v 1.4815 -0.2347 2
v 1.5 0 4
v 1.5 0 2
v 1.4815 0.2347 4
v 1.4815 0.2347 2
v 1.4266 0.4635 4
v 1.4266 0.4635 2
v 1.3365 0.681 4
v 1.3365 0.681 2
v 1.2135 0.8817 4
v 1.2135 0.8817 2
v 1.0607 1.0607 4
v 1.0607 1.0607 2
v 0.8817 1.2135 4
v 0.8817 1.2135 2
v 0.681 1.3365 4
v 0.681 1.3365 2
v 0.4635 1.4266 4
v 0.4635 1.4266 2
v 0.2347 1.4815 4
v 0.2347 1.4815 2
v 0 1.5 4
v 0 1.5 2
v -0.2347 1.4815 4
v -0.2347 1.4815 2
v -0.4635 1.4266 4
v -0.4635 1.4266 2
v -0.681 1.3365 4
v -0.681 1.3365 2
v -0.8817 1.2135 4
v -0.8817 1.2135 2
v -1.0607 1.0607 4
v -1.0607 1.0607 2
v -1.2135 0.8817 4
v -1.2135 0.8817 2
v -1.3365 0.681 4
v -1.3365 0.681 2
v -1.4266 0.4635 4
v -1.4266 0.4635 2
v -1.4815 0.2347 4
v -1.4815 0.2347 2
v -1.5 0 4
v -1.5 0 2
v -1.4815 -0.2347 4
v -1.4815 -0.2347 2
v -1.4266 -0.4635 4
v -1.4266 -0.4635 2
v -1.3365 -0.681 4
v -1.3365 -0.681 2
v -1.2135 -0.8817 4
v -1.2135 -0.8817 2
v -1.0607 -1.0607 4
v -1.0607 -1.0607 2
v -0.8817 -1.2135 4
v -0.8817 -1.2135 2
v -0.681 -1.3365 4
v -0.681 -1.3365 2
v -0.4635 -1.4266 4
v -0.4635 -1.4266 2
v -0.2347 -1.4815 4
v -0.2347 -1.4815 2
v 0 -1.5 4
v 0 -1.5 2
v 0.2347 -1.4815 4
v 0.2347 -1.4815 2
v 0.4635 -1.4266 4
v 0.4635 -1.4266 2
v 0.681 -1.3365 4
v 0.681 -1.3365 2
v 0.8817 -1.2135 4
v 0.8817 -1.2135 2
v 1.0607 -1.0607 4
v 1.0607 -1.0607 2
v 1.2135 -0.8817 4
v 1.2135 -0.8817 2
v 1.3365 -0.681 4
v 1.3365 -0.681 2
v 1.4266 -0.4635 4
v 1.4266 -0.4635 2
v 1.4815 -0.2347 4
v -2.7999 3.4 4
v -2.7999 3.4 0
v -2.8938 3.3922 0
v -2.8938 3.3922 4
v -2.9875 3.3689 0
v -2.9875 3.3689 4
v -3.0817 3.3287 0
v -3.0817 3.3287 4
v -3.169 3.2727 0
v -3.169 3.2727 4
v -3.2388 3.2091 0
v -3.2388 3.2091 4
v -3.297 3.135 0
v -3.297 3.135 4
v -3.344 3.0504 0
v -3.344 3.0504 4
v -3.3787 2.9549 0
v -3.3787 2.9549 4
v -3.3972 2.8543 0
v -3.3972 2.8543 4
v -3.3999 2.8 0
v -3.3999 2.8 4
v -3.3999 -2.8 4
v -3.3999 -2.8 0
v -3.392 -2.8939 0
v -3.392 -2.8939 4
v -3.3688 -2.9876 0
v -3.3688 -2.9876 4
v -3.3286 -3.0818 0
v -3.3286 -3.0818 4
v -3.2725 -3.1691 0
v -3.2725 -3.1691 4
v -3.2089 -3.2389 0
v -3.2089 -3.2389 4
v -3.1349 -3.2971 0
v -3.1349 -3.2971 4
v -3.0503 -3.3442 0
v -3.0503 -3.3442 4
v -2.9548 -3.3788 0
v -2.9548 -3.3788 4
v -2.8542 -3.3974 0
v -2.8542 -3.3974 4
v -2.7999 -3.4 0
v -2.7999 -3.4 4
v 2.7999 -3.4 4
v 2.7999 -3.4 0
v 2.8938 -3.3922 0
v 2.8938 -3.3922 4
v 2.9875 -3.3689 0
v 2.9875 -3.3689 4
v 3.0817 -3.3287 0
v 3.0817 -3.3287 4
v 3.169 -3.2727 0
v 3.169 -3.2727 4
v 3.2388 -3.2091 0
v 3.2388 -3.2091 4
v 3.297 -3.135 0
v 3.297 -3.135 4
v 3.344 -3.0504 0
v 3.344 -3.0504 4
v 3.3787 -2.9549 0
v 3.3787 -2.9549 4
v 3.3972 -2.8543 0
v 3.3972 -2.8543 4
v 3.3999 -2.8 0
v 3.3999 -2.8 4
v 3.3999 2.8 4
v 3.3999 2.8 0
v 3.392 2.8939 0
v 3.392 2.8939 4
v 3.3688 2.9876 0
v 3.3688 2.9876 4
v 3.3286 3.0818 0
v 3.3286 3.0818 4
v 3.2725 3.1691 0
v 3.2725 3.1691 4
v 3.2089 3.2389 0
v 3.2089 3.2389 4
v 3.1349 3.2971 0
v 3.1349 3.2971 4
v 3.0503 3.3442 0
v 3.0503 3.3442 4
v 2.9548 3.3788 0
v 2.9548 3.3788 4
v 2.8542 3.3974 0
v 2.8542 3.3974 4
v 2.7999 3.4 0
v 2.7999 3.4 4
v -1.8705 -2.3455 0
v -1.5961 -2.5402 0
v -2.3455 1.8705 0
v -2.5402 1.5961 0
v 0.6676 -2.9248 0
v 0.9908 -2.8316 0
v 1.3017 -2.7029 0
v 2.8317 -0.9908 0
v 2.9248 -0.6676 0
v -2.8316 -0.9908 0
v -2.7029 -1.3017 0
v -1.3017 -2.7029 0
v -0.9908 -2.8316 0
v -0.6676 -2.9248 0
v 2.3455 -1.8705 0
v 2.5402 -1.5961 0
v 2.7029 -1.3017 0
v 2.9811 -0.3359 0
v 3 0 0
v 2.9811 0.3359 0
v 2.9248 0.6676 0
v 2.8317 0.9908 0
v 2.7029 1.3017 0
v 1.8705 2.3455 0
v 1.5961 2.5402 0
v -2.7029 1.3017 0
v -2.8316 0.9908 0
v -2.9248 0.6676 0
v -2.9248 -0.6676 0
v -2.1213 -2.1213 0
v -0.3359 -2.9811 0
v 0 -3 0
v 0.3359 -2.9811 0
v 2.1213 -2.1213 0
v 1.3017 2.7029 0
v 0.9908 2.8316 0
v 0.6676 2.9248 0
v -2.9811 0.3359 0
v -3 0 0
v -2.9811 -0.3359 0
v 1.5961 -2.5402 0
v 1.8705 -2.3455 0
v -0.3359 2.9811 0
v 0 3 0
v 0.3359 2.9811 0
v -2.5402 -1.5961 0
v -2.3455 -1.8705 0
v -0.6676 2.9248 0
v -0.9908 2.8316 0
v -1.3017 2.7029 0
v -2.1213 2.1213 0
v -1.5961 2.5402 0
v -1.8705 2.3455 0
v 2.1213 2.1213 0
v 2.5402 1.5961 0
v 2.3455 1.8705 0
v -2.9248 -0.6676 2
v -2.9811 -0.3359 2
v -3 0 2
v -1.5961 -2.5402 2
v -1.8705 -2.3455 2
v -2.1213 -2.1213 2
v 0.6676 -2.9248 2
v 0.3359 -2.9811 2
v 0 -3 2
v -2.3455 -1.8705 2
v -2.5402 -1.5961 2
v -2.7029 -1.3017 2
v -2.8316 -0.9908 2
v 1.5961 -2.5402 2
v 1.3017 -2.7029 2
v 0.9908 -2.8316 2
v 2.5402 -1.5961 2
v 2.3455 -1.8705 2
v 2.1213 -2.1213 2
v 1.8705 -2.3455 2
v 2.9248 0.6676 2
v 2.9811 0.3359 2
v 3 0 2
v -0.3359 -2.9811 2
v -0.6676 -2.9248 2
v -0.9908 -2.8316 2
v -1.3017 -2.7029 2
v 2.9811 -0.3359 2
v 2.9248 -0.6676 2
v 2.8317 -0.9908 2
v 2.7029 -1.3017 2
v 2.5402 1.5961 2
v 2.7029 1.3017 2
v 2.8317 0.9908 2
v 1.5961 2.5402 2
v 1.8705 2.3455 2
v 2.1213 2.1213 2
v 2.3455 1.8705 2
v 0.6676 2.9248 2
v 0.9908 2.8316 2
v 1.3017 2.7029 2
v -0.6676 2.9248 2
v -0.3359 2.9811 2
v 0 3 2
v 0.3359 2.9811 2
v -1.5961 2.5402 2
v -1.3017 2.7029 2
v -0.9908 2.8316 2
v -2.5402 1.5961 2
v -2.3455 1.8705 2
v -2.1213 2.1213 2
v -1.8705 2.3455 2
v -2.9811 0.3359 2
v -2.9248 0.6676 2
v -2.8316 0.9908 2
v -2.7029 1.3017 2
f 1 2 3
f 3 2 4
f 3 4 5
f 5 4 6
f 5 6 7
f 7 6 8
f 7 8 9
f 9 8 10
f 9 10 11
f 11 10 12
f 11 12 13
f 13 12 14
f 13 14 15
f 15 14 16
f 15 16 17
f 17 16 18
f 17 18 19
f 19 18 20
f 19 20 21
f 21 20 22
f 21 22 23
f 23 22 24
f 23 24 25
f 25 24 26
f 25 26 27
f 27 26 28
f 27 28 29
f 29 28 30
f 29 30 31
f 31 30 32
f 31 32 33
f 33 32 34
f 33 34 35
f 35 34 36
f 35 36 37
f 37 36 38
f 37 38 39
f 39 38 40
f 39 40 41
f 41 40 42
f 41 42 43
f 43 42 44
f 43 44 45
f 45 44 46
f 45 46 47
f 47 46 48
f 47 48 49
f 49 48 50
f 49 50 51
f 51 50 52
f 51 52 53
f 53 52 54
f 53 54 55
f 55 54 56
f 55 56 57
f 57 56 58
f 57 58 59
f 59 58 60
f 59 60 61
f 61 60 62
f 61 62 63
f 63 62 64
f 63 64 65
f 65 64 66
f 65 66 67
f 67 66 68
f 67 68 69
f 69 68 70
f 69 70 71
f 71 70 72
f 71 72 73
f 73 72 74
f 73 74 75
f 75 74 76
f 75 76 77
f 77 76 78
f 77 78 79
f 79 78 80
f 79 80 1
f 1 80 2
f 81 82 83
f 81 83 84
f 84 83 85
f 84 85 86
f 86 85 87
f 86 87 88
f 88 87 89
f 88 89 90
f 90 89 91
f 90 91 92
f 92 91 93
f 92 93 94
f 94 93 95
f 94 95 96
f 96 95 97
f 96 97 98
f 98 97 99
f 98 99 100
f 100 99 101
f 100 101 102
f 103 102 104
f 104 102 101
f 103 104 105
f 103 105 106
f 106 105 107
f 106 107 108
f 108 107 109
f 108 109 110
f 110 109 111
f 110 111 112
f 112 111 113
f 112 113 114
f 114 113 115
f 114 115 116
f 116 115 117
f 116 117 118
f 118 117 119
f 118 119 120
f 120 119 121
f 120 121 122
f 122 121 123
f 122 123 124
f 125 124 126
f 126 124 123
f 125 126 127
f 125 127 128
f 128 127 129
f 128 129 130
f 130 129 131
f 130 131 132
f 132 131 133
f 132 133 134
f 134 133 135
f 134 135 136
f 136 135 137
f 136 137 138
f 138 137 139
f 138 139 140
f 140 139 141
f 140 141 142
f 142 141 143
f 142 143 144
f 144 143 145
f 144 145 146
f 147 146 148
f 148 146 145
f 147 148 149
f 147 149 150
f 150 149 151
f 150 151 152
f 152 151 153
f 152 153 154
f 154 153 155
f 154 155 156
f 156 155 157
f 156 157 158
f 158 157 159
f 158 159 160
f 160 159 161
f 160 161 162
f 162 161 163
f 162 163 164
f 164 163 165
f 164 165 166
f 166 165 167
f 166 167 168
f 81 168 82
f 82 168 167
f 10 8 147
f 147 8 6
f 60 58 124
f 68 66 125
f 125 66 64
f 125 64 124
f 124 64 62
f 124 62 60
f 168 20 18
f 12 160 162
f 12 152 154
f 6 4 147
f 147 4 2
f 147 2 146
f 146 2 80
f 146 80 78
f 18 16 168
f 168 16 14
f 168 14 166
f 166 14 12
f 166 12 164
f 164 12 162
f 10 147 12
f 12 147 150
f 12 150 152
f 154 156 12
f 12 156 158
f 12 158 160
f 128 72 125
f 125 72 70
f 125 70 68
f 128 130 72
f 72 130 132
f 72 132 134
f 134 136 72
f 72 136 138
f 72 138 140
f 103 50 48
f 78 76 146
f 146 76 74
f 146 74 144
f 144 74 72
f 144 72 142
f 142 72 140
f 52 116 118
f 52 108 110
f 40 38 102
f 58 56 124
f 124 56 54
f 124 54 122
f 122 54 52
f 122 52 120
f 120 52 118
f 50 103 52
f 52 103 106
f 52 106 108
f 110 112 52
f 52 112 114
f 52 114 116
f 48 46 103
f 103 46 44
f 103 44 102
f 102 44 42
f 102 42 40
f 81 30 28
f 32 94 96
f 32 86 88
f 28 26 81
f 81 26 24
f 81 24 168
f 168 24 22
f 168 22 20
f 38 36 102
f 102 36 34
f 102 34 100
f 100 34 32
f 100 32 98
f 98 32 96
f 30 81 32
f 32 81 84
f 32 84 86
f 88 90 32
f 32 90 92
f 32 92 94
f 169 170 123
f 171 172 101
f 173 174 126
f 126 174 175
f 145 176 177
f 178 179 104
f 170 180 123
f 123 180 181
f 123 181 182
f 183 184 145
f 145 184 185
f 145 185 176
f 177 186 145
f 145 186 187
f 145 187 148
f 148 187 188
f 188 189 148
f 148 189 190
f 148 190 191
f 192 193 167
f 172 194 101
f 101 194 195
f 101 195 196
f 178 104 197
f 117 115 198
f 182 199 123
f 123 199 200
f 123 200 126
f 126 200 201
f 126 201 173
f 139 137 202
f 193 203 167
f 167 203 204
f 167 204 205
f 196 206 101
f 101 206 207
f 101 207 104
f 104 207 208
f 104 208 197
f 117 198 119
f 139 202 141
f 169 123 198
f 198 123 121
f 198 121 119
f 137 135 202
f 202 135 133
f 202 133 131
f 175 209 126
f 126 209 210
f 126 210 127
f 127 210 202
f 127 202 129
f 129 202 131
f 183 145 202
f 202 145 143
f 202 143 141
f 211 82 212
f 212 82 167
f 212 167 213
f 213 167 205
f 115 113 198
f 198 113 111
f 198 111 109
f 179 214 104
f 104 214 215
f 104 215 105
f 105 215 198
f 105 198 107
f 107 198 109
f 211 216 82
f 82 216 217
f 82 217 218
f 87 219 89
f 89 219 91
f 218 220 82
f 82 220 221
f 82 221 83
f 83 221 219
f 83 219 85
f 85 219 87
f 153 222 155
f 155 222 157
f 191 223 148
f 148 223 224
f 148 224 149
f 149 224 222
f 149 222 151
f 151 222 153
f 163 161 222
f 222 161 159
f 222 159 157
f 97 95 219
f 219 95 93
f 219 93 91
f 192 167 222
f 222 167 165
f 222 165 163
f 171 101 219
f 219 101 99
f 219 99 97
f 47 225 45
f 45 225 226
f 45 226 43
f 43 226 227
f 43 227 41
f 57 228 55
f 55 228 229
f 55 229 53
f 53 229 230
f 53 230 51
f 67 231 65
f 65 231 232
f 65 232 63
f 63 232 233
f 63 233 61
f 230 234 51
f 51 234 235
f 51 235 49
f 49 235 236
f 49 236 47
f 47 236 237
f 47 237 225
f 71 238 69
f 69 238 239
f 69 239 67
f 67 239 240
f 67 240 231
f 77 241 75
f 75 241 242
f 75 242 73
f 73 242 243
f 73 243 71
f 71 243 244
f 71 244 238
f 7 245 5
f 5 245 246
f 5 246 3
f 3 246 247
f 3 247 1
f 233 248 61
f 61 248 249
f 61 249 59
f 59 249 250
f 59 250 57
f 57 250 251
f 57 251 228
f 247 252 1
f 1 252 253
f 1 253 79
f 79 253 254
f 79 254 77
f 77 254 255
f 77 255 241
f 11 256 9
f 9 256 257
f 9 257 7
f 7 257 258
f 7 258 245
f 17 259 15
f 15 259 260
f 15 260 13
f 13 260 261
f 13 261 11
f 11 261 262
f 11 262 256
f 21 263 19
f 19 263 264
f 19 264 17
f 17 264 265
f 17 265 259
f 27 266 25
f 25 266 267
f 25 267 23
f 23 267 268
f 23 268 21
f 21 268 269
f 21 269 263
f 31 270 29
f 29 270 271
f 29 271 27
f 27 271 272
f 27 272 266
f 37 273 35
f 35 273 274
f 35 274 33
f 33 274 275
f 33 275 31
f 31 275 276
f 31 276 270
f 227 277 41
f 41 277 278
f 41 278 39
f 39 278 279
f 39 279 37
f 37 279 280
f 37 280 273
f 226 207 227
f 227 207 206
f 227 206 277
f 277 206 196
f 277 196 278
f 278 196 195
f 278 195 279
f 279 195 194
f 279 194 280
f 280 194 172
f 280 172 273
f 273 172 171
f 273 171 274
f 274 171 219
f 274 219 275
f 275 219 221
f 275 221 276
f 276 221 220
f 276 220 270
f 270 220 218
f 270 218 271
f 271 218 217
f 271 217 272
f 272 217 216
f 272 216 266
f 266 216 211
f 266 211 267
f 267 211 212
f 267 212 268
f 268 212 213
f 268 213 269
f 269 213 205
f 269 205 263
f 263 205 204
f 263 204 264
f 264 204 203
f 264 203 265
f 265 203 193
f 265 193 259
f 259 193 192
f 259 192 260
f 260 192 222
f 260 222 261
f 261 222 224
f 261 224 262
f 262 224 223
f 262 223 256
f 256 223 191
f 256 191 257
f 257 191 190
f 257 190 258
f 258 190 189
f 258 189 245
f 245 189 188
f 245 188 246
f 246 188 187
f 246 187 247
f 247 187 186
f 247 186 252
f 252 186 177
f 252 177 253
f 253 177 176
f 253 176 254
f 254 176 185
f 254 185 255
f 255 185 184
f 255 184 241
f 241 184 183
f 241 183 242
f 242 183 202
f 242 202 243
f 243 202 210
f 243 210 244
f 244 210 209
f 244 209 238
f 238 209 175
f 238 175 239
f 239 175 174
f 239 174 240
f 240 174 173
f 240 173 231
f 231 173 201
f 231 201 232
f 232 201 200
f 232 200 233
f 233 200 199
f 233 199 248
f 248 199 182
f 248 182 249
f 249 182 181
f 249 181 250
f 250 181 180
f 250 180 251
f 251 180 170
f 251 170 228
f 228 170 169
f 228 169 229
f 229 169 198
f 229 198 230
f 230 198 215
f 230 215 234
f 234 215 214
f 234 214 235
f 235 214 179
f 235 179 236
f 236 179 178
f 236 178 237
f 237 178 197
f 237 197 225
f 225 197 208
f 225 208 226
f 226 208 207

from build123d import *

# Parameters (mm, degrees)
BOSS_EXTRUDE1_DEPTH = 4
SKETCH2_R           = 1.5
CUT_EXTRUDE1_DEPTH  = 4
SKETCH3_R           = 3
CUT_EXTRUDE2_DEPTH  = 2


with BuildPart() as part:
    # Sketch1 → Boss-Extrude1 (new body)
    with BuildSketch(Plane.XY):
        with BuildLine():
            Line((-3.399881961, 2.8), (-3.399881961, -2.8))
            add(Edge.make_bspline(
                [(-3.399881961, -2.8), (-3.399881961, -2.953071187), (-3.271882834, -3.271984466), (-2.952966029, -3.4), (-2.799893385, -3.4)],
                knots=[-1.570796327, -1.570796327, -1.570796327, -1.570796327, -0.785398163, 0, 0, 0, 0], degree=3))
            Line((-2.799893385, -3.4), (2.799893385, -3.4))
            add(Edge.make_bspline(
                [(2.799893385, -3.4), (2.952966029, -3.4), (3.271882834, -3.271984466), (3.399881961, -2.953071187), (3.399881961, -2.8)],
                knots=[0, 0, 0, 0, 0.785398163, 1.570796327, 1.570796327, 1.570796327, 1.570796327], degree=3))
            Line((3.399881961, -2.8), (3.399881961, 2.8))
            add(Edge.make_bspline(
                [(3.399881961, 2.8), (3.399881961, 2.953071187), (3.271882834, 3.271984466), (2.952966029, 3.4), (2.799893385, 3.4)],
                knots=[1.570796327, 1.570796327, 1.570796327, 1.570796327, 2.35619449, 3.141592654, 3.141592654, 3.141592654, 3.141592654], degree=3))
            Line((2.799893385, 3.4), (-2.799893385, 3.4))
            add(Edge.make_bspline(
                [(-2.799893385, 3.4), (-2.952966029, 3.4), (-3.271882834, 3.271984466), (-3.399881961, 2.953071187), (-3.399881961, 2.8)],
                knots=[-3.141592654, -3.141592654, -3.141592654, -3.141592654, -2.35619449, -1.570796327, -1.570796327, -1.570796327, -1.570796327], degree=3))
        make_face()
    extrude(amount=BOSS_EXTRUDE1_DEPTH)

    # Sketch2 → Cut-Extrude1 (cut)
    with BuildSketch(Plane.XY.offset(4)):
        Circle(SKETCH2_R)
    extrude(amount=-CUT_EXTRUDE1_DEPTH, mode=Mode.SUBTRACT)

    # Sketch3 → Cut-Extrude2 (cut)
    with BuildSketch(Plane(origin=(0, 0, 0), x_dir=(-1, 0, 0), z_dir=(0, 0, -1))):
        Circle(SKETCH3_R)
    extrude(amount=-CUT_EXTRUDE2_DEPTH, mode=Mode.SUBTRACT)


solid = part.part
